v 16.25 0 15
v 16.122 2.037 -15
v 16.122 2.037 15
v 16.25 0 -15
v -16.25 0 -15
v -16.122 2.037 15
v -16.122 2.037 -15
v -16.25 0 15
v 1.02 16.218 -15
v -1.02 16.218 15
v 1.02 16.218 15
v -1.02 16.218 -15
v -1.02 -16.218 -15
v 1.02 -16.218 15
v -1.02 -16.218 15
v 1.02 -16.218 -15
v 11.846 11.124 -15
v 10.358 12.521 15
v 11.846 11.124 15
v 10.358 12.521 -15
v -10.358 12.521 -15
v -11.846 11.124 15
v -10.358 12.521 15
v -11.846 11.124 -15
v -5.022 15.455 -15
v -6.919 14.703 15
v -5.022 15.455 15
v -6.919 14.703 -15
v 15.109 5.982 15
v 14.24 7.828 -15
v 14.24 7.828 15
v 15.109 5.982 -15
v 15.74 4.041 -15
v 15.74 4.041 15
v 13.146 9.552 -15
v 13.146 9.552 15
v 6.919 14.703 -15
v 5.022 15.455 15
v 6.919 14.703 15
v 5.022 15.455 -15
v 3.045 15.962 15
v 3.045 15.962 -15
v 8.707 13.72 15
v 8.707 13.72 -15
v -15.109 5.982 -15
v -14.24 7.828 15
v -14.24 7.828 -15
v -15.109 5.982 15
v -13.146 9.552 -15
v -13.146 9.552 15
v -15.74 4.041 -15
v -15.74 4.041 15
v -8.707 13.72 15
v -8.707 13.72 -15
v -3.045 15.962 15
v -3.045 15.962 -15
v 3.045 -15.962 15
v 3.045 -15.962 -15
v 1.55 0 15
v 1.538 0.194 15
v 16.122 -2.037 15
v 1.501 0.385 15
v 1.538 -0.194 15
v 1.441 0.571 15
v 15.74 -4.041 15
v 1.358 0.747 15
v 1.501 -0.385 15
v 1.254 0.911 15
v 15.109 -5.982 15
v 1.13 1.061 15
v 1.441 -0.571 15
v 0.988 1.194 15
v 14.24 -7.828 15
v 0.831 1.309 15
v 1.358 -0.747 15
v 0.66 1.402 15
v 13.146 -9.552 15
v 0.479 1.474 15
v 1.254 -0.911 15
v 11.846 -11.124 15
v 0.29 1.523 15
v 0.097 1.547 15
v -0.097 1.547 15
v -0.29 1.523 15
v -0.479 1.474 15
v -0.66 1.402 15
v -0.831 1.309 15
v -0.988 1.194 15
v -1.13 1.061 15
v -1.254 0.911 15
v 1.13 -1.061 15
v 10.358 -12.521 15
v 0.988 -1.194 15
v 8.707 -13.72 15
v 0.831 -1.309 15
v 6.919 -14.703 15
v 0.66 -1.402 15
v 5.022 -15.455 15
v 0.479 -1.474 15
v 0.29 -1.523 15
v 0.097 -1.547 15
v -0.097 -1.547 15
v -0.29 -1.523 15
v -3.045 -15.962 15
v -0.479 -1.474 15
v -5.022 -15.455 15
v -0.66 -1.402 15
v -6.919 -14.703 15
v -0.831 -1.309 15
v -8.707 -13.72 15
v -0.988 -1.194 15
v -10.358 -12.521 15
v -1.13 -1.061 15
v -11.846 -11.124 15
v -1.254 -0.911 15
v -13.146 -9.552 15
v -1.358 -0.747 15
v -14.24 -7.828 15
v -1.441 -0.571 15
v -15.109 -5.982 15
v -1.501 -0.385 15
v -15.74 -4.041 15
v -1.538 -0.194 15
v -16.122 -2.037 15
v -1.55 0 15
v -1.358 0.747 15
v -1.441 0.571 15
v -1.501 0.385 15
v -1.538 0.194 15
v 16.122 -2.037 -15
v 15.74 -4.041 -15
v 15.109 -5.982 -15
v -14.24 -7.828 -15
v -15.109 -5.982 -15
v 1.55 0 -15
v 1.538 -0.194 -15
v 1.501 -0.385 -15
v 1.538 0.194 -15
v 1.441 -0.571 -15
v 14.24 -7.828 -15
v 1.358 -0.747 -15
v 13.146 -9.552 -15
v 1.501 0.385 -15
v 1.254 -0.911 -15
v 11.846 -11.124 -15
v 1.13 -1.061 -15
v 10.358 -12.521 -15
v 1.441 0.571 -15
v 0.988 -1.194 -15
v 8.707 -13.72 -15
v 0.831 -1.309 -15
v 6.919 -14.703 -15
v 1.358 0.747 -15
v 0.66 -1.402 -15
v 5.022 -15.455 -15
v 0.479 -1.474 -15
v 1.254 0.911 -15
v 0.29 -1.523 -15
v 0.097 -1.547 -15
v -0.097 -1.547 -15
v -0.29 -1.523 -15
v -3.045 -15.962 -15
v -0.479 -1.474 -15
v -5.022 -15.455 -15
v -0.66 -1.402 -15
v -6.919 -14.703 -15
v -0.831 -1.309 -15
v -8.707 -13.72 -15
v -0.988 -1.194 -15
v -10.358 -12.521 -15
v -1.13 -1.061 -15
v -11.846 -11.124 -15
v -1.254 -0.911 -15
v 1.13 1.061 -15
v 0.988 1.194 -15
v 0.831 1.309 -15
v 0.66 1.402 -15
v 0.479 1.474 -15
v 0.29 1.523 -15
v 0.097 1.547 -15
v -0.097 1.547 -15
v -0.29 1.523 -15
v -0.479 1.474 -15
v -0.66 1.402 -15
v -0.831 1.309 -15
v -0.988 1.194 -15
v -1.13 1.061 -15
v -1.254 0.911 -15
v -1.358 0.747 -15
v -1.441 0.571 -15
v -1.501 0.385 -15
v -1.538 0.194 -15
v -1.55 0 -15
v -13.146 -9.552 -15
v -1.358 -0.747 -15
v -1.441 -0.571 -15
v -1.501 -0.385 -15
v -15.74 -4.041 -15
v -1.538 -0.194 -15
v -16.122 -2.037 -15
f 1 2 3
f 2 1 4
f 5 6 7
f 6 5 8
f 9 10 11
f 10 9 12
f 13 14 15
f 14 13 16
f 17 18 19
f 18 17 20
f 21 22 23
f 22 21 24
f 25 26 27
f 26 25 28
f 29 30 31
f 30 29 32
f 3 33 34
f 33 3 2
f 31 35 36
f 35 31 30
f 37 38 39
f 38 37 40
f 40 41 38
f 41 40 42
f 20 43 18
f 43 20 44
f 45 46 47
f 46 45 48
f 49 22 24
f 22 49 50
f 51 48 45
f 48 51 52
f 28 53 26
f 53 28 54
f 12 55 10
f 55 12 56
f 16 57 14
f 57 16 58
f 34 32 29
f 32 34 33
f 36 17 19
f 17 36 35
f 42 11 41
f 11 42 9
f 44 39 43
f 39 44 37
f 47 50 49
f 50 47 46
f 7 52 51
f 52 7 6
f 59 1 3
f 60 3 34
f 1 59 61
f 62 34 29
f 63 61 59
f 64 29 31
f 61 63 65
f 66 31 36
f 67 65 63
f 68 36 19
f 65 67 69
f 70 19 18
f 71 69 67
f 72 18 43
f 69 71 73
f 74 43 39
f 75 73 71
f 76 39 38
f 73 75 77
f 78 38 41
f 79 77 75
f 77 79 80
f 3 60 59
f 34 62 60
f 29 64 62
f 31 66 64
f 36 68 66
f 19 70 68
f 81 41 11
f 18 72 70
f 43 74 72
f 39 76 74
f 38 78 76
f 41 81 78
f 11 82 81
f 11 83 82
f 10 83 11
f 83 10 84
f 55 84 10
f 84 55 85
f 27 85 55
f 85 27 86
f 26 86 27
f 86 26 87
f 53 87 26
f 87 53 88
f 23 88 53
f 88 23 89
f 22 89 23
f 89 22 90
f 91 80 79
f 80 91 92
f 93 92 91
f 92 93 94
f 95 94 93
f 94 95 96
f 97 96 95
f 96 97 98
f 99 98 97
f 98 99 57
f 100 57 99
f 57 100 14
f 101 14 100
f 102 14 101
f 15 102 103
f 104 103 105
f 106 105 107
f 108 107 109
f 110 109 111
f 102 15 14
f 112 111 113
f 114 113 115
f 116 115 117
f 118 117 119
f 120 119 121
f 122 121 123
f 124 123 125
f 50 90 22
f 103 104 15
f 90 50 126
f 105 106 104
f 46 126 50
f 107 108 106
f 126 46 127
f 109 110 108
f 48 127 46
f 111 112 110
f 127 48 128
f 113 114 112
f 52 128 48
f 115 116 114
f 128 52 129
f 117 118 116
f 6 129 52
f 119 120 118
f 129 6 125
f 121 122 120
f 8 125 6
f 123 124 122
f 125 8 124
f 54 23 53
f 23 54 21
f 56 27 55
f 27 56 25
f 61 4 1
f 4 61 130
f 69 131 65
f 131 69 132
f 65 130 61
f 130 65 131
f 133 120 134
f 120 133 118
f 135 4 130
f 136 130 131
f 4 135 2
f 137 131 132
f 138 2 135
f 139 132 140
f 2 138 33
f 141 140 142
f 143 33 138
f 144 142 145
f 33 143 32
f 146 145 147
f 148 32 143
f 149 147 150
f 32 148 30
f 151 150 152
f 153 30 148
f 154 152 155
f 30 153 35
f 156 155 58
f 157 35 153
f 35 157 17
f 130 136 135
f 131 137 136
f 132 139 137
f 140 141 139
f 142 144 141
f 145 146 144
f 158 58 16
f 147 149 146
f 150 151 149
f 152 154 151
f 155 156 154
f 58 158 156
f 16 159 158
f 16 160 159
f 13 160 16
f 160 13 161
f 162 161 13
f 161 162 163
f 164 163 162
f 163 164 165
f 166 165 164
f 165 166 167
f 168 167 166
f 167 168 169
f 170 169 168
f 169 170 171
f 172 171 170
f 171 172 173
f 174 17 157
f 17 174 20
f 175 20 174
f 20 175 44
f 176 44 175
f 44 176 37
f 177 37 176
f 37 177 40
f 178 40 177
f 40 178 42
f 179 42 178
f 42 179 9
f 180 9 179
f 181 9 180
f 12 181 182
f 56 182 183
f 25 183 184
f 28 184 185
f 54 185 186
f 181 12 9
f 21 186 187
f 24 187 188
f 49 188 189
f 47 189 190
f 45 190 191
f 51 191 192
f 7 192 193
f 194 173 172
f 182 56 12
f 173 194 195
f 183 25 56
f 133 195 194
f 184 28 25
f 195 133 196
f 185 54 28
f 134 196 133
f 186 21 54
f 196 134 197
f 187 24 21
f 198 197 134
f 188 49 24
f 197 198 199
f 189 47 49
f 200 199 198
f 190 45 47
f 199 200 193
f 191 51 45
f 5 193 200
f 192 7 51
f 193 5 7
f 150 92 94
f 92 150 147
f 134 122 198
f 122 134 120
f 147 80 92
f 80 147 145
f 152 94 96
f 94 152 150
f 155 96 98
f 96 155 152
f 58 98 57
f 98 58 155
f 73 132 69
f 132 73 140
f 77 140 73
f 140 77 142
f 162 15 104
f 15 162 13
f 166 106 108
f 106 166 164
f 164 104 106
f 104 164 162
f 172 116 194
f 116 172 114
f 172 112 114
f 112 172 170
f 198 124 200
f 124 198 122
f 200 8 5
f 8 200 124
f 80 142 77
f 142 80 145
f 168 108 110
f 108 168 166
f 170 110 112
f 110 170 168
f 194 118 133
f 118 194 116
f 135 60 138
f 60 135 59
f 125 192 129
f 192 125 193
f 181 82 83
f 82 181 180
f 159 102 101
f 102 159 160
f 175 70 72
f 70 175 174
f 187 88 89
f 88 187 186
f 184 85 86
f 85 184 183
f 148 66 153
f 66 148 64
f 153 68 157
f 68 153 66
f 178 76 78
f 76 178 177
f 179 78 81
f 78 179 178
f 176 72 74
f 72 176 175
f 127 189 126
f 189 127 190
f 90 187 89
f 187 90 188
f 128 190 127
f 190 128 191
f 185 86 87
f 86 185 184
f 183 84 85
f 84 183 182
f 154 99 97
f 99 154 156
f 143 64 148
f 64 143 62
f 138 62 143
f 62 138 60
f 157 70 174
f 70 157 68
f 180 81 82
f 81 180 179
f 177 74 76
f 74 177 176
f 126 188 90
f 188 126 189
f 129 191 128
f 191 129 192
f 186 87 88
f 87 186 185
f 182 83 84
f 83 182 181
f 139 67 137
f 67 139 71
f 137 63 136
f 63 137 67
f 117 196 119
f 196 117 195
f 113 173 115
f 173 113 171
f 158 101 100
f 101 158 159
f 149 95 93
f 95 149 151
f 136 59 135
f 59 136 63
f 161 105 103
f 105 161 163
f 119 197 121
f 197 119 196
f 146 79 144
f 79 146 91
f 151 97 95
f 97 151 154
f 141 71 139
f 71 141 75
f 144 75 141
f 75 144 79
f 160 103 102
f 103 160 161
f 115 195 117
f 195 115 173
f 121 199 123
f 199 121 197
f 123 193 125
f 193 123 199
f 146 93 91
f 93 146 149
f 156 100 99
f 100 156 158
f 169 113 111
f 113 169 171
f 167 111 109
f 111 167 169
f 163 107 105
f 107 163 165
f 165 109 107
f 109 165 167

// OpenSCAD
$fn = 50;


difference() {
	union() {
		translate(v = [0, 0, -15.0000000000]) {
			cylinder(h = 30, r = 16.2500000000);
		}
	}
	union() {
		translate(v = [0, 0, -100.0000000000]) {
			cylinder(h = 200, r = 1.5500000000);
		}
	}
}
